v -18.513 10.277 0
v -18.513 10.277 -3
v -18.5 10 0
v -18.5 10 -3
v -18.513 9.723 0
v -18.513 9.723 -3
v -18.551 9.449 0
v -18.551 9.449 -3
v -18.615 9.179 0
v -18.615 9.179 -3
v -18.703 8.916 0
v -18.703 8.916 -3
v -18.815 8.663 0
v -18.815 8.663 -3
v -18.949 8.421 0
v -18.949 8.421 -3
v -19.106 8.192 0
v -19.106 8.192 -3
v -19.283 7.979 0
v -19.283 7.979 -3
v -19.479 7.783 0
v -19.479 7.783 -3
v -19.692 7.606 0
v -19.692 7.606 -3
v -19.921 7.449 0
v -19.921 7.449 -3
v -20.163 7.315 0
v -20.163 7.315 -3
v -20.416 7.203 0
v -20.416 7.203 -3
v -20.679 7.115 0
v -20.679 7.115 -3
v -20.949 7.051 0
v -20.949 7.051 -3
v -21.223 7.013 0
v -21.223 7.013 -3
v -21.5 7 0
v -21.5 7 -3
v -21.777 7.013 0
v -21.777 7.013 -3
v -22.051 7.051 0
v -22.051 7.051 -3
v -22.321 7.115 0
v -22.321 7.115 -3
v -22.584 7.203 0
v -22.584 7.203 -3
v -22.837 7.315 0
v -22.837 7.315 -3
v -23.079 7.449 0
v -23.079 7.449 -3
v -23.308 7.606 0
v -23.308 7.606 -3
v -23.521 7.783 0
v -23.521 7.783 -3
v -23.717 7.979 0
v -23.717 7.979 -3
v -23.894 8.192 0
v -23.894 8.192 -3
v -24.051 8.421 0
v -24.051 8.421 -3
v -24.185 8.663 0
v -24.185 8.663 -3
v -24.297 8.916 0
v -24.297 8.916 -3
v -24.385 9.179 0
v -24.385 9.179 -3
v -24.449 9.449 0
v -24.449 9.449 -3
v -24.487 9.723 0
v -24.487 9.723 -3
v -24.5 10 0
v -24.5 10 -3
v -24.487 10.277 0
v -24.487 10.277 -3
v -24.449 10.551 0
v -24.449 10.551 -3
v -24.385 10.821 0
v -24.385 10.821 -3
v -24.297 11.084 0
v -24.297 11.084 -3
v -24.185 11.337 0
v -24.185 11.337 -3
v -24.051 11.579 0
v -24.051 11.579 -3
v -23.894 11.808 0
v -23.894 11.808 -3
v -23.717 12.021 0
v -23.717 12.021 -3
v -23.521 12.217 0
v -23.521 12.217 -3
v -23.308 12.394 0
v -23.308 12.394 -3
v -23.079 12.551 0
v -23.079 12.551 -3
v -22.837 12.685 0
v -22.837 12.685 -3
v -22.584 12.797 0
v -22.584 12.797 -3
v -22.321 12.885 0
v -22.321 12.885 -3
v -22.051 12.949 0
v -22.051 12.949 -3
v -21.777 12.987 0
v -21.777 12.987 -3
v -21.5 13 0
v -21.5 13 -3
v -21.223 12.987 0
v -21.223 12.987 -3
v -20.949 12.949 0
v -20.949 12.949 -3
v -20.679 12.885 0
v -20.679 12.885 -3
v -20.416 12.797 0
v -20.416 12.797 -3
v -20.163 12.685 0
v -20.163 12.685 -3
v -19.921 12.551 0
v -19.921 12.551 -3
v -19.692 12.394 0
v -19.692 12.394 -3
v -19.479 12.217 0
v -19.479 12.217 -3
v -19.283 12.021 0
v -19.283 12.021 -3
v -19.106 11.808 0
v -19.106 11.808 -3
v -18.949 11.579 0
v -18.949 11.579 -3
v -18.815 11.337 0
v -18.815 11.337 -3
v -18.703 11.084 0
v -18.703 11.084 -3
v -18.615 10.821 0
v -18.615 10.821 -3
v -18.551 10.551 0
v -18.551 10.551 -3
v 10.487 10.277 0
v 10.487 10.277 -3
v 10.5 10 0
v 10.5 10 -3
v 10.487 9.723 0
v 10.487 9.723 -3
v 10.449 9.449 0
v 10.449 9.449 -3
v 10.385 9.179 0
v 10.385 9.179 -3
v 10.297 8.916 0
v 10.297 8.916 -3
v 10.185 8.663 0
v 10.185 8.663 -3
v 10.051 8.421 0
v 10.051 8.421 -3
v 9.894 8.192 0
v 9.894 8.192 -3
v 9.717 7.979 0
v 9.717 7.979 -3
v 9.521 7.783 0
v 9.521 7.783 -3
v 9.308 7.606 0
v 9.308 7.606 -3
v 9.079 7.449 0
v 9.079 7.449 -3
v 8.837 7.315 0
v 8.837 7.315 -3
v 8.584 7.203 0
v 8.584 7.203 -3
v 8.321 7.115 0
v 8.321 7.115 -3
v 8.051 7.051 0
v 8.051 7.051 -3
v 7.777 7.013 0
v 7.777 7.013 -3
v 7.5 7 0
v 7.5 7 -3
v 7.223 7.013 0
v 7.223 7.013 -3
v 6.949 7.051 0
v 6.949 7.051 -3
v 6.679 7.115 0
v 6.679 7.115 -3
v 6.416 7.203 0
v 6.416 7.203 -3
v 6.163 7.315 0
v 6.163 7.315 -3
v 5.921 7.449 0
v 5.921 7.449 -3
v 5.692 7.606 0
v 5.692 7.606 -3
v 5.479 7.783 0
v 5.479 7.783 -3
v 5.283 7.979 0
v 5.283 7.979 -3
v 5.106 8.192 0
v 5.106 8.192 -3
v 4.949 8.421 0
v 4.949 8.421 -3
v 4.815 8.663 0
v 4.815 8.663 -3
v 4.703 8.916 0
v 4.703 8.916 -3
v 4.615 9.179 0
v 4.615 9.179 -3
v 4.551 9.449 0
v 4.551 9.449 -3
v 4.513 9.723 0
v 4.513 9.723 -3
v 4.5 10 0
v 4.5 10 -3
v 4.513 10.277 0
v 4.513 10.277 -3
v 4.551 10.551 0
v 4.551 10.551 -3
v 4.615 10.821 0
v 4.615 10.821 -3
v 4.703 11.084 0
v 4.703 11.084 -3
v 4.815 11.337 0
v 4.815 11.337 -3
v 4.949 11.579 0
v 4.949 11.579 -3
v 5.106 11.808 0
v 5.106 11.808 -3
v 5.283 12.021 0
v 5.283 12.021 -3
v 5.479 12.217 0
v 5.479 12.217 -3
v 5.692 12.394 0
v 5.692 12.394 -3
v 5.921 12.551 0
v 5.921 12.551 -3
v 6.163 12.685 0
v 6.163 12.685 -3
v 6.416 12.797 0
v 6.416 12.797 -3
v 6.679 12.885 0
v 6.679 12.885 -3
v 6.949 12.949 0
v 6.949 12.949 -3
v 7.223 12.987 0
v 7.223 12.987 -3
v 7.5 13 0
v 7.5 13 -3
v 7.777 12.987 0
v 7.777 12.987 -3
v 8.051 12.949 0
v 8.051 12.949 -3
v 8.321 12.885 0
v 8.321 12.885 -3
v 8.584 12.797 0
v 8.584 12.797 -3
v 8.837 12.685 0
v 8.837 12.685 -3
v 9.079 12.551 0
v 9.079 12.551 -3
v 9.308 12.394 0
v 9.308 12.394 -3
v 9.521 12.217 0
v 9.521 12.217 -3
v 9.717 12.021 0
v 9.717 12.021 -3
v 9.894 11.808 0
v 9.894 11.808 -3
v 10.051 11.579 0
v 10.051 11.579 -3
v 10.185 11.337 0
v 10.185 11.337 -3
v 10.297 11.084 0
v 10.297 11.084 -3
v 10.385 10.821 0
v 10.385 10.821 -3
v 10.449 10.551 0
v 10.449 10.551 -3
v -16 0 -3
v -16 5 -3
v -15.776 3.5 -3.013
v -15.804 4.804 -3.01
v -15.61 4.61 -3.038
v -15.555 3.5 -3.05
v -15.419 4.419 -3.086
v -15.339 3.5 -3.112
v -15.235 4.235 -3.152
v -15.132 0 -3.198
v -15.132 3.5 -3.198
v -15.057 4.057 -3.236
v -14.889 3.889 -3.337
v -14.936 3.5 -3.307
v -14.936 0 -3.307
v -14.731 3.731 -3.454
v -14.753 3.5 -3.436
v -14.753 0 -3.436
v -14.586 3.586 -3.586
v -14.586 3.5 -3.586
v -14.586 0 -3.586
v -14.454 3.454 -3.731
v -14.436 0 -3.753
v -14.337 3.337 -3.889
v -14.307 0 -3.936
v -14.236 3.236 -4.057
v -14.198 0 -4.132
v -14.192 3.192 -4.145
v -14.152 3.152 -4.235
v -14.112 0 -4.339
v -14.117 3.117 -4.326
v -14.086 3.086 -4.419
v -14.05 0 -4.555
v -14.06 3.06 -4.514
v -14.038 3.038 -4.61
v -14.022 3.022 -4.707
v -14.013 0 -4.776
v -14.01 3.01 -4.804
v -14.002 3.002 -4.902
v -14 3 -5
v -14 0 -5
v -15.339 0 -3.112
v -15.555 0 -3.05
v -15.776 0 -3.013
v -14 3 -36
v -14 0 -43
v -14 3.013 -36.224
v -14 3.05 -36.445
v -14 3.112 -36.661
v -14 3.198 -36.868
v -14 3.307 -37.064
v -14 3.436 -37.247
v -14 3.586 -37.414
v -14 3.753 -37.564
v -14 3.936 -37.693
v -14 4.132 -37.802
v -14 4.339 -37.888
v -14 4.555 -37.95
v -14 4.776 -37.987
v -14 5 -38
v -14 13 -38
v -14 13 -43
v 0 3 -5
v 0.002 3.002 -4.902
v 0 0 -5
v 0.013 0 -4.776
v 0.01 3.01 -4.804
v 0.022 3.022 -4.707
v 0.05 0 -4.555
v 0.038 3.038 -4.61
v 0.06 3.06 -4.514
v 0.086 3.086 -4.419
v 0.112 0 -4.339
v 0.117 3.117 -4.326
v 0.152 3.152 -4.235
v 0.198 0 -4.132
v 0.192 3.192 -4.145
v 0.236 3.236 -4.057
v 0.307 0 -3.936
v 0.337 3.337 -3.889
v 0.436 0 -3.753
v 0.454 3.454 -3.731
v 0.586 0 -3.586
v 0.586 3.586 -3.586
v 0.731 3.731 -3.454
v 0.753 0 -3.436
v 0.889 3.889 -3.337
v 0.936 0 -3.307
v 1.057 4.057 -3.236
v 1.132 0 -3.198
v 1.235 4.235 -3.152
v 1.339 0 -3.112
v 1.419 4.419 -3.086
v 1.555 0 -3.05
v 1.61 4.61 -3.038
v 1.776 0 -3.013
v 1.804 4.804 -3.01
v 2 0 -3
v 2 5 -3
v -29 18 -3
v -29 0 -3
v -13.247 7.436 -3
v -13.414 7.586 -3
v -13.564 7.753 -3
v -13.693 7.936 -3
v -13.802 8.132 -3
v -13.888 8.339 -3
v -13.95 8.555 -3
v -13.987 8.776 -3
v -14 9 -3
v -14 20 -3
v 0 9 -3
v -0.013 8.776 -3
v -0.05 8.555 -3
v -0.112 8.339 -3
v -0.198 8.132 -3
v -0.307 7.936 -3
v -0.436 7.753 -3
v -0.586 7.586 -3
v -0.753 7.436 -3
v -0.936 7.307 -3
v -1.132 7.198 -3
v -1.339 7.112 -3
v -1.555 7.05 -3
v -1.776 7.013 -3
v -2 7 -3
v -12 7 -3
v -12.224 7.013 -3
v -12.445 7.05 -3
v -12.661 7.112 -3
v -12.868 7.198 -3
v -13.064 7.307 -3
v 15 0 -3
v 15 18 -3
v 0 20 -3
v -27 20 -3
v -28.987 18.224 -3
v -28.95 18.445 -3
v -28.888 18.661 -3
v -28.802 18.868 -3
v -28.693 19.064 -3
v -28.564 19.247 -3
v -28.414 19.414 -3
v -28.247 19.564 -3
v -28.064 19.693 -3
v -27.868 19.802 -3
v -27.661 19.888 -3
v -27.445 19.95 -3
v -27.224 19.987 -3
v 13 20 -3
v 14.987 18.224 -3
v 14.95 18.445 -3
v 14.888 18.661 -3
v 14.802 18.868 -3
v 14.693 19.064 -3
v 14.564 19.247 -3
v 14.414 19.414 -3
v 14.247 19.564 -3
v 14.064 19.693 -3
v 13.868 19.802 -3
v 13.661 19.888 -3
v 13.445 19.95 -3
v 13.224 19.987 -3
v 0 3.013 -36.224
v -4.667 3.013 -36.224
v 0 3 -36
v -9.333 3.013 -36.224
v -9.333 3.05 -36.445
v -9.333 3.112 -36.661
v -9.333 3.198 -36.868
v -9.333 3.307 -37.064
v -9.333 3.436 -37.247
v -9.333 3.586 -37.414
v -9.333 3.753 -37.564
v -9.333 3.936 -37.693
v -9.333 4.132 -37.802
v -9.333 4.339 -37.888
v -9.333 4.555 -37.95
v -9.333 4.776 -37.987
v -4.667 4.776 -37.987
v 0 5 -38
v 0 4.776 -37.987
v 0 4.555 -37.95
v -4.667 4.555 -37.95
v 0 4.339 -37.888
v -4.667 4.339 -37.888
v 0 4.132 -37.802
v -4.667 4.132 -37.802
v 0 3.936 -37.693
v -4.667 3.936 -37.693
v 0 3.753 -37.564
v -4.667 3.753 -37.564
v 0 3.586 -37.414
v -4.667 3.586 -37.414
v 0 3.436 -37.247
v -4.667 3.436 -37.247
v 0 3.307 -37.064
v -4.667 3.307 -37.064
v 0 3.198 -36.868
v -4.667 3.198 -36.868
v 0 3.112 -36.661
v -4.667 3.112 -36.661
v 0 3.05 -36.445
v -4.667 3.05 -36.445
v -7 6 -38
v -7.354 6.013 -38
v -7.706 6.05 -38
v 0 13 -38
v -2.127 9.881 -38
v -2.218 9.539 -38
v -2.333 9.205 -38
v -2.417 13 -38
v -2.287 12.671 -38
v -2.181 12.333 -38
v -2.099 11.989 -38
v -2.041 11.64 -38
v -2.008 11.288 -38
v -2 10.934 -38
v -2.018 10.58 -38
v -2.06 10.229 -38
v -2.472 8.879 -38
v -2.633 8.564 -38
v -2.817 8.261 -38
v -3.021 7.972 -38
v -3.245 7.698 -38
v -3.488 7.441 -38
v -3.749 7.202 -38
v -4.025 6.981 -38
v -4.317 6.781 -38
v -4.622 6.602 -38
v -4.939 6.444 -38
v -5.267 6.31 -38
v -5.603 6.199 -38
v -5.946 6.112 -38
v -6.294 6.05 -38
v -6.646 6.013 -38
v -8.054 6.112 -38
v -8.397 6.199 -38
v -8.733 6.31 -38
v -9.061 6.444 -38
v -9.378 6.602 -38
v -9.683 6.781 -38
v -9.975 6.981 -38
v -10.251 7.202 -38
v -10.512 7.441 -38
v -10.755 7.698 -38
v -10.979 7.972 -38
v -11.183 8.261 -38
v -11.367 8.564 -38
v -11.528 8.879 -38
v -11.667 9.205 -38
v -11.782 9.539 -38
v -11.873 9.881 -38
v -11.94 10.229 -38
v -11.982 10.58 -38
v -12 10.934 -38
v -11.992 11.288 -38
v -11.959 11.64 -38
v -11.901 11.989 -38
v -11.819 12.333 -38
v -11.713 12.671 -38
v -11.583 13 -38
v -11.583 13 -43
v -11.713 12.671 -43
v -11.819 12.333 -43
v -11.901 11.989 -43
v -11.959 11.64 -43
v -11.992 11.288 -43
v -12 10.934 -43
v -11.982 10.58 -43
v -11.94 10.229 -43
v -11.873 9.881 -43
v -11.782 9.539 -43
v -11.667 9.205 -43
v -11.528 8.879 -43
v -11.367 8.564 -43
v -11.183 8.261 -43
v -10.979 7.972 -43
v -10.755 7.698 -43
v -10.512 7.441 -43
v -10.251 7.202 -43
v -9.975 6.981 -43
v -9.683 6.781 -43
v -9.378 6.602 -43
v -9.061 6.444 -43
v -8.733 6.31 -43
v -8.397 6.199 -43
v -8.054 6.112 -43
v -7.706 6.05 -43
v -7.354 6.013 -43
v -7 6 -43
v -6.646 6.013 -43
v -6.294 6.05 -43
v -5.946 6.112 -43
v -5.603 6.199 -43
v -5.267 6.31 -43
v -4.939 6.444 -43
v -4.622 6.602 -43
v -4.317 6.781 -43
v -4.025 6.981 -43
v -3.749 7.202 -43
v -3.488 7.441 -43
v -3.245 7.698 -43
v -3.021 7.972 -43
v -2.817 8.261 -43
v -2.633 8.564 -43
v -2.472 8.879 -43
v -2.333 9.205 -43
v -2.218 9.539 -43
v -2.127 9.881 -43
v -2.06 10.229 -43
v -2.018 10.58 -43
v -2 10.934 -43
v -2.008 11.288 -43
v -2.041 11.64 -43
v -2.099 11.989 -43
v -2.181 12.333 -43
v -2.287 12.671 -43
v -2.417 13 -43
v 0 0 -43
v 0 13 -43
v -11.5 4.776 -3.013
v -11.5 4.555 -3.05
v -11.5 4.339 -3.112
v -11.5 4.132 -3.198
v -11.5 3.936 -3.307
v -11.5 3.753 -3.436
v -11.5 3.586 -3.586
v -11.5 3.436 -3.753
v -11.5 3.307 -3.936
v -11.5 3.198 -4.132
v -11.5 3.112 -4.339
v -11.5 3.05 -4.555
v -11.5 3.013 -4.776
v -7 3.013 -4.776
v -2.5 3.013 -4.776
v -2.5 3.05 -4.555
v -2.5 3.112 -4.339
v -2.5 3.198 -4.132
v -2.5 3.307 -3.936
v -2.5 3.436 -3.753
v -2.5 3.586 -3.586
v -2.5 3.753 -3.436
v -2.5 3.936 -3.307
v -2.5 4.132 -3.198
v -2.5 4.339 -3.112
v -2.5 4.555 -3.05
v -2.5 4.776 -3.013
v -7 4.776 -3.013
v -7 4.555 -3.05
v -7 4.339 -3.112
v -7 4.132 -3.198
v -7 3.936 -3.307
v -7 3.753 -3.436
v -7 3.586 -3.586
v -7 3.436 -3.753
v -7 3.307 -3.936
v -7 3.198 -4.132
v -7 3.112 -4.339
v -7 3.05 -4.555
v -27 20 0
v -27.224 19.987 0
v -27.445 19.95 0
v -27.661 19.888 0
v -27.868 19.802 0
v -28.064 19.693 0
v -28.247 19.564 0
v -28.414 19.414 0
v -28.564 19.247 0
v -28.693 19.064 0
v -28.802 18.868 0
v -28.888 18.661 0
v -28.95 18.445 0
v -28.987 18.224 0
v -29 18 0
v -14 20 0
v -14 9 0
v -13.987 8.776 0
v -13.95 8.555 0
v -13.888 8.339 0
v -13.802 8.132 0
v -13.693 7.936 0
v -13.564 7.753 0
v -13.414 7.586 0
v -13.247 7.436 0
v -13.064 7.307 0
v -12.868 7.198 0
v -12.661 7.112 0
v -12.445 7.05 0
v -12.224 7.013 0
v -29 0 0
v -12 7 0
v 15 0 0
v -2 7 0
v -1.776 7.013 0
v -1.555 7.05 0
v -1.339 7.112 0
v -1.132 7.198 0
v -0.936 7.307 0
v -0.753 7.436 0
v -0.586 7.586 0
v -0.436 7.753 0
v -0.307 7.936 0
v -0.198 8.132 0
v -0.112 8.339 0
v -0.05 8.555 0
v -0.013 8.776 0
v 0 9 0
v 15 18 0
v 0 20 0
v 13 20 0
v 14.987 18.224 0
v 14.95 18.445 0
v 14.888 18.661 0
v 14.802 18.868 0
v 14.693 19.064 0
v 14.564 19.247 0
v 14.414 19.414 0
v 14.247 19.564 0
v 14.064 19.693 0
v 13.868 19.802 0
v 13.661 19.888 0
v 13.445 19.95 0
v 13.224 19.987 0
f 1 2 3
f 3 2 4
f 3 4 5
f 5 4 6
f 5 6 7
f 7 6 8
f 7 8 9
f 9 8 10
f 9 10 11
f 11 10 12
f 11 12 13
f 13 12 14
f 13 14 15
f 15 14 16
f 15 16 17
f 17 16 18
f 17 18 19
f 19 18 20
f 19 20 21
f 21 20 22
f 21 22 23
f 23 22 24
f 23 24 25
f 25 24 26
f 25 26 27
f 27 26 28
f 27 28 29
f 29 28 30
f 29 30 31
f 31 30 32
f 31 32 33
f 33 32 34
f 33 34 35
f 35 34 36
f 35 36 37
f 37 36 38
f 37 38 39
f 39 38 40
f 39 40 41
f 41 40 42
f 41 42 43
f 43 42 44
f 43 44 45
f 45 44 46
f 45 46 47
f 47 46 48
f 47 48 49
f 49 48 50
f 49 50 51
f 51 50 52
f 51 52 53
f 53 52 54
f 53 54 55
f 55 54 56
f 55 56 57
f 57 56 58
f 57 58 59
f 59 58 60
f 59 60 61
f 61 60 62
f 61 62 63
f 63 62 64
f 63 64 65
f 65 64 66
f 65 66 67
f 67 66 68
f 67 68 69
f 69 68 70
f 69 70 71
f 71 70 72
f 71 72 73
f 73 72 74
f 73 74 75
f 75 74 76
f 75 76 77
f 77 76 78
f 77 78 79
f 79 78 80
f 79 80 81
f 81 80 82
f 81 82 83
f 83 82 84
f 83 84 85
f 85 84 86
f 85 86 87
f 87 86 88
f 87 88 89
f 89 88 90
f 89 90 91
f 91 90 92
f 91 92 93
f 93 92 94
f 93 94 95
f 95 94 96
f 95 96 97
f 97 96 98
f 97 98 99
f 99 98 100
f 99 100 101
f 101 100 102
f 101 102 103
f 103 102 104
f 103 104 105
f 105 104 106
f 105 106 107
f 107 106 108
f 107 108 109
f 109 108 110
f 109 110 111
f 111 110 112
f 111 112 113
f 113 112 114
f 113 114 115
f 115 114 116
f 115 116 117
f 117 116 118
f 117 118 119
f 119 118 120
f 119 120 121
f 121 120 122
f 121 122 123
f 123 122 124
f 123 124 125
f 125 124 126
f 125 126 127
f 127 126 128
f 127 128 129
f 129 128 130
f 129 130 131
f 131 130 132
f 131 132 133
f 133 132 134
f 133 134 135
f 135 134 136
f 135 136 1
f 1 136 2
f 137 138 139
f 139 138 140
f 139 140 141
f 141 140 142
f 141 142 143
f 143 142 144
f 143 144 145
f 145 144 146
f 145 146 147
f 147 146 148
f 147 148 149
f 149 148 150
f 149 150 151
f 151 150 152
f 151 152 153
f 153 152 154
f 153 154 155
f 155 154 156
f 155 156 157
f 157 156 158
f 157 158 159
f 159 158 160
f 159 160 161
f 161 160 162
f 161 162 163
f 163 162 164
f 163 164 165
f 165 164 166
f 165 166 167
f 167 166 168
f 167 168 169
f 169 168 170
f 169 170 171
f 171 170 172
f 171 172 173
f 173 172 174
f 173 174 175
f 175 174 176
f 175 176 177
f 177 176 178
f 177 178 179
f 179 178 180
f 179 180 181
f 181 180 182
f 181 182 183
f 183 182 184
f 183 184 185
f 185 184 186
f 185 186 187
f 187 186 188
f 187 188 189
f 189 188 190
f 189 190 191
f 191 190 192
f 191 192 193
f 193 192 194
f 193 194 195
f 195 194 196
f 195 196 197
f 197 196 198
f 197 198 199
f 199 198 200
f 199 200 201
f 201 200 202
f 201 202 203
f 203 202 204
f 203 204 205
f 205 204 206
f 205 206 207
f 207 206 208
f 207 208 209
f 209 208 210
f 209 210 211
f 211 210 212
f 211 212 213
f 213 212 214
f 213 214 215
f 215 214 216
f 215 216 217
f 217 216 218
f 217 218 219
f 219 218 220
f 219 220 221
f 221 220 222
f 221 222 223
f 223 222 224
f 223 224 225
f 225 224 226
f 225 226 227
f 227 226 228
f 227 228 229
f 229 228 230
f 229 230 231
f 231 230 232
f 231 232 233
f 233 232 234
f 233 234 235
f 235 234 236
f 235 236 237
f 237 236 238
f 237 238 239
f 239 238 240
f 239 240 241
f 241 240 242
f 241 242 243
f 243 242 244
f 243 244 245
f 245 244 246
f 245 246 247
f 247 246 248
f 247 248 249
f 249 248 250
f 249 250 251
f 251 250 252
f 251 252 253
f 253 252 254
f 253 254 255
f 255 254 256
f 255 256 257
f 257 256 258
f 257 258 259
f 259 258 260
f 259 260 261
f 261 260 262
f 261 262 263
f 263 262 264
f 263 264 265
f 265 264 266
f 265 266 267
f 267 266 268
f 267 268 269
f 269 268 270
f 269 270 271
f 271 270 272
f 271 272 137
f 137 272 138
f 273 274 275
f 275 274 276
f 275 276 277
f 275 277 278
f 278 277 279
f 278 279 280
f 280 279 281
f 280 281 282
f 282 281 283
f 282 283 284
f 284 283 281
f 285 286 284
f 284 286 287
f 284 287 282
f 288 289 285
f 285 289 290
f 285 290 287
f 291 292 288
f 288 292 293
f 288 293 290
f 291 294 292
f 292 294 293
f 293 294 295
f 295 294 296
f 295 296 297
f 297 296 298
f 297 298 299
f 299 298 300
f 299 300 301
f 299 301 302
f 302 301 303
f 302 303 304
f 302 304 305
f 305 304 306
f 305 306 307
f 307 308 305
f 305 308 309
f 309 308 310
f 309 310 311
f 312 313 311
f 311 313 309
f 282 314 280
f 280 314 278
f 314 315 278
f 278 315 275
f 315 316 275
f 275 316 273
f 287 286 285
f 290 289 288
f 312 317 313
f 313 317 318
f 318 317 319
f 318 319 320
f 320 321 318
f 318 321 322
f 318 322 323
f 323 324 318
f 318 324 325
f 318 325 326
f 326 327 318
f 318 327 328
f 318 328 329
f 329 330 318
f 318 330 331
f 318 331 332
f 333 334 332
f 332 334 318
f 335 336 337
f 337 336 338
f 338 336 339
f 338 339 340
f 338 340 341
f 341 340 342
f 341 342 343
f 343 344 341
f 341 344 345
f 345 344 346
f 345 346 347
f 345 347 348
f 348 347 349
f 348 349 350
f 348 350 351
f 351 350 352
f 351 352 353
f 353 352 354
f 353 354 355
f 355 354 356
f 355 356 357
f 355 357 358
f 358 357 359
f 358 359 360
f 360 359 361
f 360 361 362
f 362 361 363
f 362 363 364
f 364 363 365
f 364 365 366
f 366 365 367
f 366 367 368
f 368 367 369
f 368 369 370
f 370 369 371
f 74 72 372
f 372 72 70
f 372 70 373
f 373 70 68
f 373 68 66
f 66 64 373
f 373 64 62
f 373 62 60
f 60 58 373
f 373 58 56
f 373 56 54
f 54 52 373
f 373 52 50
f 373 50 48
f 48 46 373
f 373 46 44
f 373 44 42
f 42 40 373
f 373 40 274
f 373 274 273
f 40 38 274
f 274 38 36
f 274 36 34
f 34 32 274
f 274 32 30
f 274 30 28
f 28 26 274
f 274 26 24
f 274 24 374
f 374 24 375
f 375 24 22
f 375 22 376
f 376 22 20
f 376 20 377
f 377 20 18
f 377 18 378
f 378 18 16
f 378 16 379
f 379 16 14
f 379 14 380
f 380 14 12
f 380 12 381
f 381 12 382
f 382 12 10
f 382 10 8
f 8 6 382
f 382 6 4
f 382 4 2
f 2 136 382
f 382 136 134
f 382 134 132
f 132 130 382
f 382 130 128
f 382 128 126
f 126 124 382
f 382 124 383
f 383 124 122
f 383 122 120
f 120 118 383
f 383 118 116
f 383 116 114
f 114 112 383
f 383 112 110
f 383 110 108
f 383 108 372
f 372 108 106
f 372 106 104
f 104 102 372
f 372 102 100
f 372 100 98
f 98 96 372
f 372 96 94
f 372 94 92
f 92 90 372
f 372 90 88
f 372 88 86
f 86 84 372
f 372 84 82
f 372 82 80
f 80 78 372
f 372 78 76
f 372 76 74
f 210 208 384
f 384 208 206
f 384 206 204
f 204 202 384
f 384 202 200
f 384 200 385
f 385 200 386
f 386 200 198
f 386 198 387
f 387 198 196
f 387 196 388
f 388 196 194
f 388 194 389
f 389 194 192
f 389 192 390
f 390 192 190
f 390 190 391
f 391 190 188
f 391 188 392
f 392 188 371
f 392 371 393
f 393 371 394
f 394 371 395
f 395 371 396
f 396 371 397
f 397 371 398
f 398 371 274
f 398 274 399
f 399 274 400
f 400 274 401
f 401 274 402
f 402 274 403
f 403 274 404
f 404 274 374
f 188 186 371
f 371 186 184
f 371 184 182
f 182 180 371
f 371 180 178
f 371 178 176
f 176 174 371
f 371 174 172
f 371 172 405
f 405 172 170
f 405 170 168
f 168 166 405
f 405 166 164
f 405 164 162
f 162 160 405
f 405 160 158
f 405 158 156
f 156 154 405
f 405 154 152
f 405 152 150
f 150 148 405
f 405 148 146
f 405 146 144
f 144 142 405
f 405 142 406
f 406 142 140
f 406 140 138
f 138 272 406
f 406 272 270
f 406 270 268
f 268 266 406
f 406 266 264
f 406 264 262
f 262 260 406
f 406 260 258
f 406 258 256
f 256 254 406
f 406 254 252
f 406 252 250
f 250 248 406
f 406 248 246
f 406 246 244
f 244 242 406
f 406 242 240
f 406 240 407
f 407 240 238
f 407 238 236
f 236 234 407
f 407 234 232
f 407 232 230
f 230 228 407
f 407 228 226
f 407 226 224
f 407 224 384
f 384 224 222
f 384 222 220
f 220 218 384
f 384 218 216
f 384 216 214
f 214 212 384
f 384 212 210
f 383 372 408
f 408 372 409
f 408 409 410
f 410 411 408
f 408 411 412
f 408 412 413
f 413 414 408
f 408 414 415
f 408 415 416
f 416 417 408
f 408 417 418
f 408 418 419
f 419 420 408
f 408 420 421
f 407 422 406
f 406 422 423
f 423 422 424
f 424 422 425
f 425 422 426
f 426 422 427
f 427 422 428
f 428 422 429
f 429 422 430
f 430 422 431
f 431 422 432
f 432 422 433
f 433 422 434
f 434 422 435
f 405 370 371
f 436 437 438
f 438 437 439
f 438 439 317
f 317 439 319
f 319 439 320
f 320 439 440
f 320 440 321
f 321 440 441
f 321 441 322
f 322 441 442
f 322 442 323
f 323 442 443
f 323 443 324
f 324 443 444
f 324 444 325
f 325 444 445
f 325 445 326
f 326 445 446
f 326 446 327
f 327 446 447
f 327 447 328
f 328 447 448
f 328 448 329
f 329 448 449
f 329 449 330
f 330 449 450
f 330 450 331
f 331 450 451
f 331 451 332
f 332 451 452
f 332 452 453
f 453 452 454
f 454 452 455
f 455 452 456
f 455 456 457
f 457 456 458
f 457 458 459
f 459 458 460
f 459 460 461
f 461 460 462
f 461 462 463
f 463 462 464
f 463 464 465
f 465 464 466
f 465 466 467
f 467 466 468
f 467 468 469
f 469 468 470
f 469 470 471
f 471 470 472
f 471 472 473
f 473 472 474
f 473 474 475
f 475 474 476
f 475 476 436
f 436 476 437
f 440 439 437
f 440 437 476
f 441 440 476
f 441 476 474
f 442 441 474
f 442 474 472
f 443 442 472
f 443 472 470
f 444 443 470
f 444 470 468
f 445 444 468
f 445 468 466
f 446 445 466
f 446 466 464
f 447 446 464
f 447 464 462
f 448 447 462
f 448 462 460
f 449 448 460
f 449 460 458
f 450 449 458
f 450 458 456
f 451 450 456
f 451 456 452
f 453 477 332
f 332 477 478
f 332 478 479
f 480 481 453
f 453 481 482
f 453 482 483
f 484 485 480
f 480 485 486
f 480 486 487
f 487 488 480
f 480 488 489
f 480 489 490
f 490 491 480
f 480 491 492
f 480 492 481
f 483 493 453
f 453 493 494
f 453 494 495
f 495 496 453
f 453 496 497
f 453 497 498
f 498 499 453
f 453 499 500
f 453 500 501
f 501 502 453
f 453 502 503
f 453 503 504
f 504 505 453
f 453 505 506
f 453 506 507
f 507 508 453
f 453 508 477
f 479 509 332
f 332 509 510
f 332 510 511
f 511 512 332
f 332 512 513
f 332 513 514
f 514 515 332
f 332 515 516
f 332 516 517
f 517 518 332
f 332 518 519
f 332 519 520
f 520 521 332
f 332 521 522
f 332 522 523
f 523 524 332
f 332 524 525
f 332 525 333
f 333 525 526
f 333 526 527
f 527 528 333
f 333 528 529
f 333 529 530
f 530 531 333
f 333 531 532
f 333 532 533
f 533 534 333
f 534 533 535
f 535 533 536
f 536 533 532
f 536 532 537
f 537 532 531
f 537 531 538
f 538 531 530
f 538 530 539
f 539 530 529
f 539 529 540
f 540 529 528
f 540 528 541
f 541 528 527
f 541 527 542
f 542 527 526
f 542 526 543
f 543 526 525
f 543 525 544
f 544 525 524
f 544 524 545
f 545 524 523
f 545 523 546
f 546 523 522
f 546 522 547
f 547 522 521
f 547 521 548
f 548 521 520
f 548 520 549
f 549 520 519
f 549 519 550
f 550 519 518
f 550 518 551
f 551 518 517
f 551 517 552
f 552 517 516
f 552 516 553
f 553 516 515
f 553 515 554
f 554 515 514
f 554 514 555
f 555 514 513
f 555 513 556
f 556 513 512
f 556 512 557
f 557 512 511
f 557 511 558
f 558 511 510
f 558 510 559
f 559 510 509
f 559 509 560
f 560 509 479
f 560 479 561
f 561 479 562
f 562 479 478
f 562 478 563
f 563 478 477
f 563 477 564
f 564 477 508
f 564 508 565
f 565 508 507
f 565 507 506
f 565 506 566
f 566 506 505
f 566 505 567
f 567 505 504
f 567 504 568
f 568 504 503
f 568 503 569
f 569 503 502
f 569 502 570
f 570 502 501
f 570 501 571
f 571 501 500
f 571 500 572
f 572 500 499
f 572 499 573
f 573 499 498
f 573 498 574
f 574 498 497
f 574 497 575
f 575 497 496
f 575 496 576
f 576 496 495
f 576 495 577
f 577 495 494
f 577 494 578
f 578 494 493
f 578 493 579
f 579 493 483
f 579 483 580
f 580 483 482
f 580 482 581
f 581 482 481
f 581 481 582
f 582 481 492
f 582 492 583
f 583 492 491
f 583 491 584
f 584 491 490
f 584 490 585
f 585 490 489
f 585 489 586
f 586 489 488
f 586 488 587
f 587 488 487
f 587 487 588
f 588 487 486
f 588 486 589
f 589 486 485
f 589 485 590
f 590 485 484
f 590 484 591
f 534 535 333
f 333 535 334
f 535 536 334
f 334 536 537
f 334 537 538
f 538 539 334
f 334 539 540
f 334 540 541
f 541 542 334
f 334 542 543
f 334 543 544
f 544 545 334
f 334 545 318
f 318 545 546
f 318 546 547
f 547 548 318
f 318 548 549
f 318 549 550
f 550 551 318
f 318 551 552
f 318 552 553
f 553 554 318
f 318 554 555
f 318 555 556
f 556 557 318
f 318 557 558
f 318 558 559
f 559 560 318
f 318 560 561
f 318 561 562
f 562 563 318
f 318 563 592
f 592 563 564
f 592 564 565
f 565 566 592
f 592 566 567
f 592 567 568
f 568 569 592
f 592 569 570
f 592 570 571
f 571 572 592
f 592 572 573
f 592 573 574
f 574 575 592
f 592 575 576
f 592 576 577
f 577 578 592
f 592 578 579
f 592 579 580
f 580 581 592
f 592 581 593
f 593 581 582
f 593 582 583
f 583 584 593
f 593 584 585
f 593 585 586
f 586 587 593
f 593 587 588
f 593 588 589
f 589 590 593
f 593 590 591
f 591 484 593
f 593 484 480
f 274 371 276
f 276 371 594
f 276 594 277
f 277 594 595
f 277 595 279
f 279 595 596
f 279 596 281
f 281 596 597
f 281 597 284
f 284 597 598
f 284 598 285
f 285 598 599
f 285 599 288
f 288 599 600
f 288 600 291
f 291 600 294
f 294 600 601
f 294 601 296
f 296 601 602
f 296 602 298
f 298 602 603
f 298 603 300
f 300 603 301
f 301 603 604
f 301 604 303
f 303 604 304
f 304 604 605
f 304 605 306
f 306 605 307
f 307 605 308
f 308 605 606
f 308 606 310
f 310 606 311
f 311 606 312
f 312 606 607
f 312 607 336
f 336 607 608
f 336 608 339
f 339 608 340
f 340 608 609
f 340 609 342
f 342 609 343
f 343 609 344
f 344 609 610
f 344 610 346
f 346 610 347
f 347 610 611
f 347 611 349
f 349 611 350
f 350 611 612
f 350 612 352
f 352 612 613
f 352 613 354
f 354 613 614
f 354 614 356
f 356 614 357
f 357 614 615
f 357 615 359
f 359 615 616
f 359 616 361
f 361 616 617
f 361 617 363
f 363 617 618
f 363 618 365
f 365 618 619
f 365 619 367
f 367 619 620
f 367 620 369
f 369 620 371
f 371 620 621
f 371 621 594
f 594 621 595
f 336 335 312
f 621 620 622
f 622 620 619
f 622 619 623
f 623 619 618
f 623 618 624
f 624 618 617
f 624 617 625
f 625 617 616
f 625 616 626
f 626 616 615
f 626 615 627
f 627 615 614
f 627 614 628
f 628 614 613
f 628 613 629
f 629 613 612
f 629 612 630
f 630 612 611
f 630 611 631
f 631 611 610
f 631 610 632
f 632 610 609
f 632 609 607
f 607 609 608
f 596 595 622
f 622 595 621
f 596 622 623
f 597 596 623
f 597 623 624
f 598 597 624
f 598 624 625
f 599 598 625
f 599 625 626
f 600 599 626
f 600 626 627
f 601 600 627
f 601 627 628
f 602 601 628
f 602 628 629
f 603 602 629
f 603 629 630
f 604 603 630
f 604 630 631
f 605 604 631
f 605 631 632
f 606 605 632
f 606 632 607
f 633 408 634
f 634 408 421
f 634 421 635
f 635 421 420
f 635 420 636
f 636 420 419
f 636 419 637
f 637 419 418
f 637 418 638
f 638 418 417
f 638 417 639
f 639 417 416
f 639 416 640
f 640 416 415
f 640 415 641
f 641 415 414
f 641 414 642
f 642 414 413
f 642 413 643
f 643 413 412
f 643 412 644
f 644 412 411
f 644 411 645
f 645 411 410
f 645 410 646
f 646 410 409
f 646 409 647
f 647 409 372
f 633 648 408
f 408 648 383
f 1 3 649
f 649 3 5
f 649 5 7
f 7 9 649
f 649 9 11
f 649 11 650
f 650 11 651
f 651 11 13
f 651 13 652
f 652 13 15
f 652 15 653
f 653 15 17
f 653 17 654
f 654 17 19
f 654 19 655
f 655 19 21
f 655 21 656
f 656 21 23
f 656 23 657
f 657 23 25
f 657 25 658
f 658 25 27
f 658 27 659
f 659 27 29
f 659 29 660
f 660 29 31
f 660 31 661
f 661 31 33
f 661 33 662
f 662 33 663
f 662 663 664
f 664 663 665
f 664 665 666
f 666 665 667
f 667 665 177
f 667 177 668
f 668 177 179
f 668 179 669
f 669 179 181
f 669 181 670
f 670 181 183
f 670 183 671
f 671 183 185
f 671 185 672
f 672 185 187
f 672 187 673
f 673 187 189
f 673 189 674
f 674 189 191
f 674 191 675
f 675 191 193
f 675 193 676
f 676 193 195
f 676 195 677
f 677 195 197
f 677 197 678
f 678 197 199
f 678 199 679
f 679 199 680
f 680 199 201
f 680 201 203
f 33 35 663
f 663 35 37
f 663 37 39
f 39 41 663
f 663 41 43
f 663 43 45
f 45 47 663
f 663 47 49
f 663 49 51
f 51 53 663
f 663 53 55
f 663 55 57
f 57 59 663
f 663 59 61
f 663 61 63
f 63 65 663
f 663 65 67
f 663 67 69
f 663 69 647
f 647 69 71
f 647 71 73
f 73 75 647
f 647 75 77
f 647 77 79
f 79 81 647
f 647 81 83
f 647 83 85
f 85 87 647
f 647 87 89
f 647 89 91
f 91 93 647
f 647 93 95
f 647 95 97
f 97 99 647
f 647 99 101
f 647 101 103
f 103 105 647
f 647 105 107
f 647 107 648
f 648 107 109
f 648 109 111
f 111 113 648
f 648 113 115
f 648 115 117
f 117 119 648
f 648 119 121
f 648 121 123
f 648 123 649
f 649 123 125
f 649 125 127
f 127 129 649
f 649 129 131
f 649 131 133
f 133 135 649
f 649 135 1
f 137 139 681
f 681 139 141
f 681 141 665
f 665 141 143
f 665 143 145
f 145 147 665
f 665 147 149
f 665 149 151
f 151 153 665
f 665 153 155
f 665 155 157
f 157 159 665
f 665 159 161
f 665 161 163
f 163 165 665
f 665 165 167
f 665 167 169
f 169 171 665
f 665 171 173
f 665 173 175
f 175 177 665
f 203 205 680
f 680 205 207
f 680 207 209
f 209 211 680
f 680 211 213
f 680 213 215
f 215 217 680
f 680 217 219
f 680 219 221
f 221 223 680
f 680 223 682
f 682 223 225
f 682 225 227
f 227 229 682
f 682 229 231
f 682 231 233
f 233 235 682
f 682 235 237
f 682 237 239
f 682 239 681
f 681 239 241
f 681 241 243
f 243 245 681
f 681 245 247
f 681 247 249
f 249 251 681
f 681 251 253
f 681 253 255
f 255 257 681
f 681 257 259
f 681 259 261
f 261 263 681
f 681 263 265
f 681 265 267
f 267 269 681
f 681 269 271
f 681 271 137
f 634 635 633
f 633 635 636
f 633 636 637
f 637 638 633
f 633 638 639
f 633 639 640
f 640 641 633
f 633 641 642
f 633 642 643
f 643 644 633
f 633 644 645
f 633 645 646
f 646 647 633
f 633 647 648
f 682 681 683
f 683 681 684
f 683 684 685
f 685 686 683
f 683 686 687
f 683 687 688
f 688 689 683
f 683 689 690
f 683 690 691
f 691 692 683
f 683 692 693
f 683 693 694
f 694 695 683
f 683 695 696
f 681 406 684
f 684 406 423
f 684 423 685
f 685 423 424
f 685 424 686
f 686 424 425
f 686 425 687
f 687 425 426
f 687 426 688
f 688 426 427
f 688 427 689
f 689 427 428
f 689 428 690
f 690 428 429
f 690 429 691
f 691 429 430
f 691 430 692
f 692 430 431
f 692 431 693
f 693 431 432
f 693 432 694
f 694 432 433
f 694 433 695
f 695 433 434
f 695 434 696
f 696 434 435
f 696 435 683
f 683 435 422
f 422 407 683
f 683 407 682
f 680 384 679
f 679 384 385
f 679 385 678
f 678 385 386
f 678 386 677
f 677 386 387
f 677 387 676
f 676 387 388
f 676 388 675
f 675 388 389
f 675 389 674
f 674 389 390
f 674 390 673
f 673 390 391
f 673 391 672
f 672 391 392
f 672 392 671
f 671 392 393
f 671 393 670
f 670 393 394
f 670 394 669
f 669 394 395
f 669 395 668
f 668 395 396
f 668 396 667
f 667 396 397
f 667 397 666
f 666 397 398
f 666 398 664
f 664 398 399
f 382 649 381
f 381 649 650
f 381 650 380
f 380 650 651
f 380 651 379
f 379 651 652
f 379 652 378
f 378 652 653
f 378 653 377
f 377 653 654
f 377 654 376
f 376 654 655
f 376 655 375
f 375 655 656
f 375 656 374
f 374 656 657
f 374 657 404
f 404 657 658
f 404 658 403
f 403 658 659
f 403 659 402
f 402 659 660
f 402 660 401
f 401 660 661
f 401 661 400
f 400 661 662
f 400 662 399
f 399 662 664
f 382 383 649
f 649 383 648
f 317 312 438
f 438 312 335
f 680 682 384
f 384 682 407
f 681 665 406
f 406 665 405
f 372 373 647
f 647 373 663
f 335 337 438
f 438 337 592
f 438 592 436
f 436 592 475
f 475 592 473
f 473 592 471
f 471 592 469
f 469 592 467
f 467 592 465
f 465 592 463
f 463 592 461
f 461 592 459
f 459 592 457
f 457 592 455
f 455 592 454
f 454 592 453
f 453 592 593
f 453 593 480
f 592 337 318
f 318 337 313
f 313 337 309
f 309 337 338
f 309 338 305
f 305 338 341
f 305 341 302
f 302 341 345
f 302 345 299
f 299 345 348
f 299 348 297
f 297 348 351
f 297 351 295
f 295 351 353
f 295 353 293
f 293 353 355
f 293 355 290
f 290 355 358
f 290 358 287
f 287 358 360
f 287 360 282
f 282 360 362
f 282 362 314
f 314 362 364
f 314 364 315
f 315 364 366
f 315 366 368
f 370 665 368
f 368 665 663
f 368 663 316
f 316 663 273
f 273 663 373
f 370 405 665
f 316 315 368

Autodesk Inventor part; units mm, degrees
ref_plane "YZ Plane" through (0, 0, 0) normal (1, 0, 0) x (0, 1, 0)
ref_plane "XZ Plane" through (0, 0, 0) normal (0, 1, 0) x (-1, 0, 0)
ref_plane "XY Plane" through (0, 0, 0) normal (0, 0, 1) x (1, 0, 0)
sketch "Эскиз1" plane through (0, 0, 0) normal (0, 1, 0) x (-1, 0, 0)
  line L0 (0, 0) -> (14, 0)
  line L1 (14, 0) -> (14, -43)
  line L2 (14, -43) -> (0, -43)
  line L3 (0, -43) -> (0, 0)
  dimension "d1" = 43
  dimension "d2" = 14
extrude "Выдавливание1" add sketch "Эскиз1" along normal blind 3
sketch "Эскиз2" plane through (-14, 0, 0) normal (0, 0, 1) x (1, 0, 0)
  line L0 (0, 0) -> (0, 3) projected
  line L1 (0, 0) -> (-15, 0)
  line L2 (-15, 0) -> (-15, 20)
  line L3 (-15, 20) -> (0, 20)
  line L4 (0, 20) -> (0, 0)
  line L5 (14, 0) -> (0, 0) projected
  line L6 (14, 0) -> (29, 0)
  line L7 (29, 0) -> (29, 20)
  line L8 (29, 20) -> (14, 20)
  line L9 (14, 20) -> (14, 0)
  dimension "d5" = 15
  dimension "d6" = 20
  dimension "d7" = 15
  dimension "d8" = 20
extrude "Выдавливание2" add sketch "Эскиз2" against normal blind 3
sketch "Эскиз3" plane through (0, 3, 0) normal (0, 1, 0) x (1, 0, 0)
  line L0 (-14, 43) -> (-14, 3) projected
  line L1 (0, 0) -> (-14, 0)
  line L2 (-14, 0) -> (-14, 3)
  line L3 (-14, 3) -> (0, 3)
  line L4 (0, 3) -> (0, 0)
extrude "Выдавливание3" add sketch "Эскиз3" along normal blind 4
fillet "Сопряжение1" radius 2 4 edges at (-14, 7, -1.5) (0, 7, -1.5) (15, 20, -1.5) (-29, 20, -1.5)
fillet "Сопряжение2" radius 2 1 edges at (-7, 3, -3)
sketch "Эскиз5" plane through (0, 3, 0) normal (0, 1, 0) x (1, 0, 0)
  line L0 (0, 5) -> (0, 43) projected
  line L1 (0, 43) -> (-14, 43)
  line L2 (-14, 43) -> (-14, 38)
  line L3 (-14, 38) -> (0, 38)
  line L4 (0, 38) -> (0, 43)
  point P0 (0, 0)
  point P1 (0, 38)
  dimension "d21" = 14
  dimension "d22" = 5
extrude "Выдавливание5" add sketch "Эскиз5" along normal blind 10
sketch "Эскиз6" plane through (0, 0, -43) normal (0, 0, -1) x (-1, 0, 0)
  circle A0 centre (7, 11) radius 5
  line L0 (0, 0) -> (14, 0) projected
  line L1 (0, 13) -> (14, 13) projected
  line L2 (0, 0) -> (0, 13) projected
  point P0 (11.5826, 13)
  point P1 (2.4174, 13)
  dimension "d25" = 10
  dimension "d27" = 2
  dimension "d28" = 7
extrude "Выдавливание6" cut sketch "Эскиз6" against normal blind 7 contours A0 L1 picked at (7.9729, 10.9801)
fillet "Сопряжение3" radius 2 1 edges at (-7, 3, -38)
fillet "Сопряжение4" radius 2 2 edges at (0, 2.5, -3) (-14, 2.5, -3)
sketch "Эскиз7" plane through (-14, 0, -3) normal (0, 0, -1) x (-1, 0, 0)
  circle A0 centre (-21.5, 10) radius 3
  line L0 (-14, 9) -> (-14, 20) projected
  line L1 (-29, 0) -> (-16, 0) projected
  circle A1 centre (7.5, 10) radius 3
  line L2 (0, 20) -> (0, 9) projected
  line L3 (2, 0) -> (15, 0) projected
  point P0 (-14, 0)
  dimension "d33" = 6
  dimension "d34" = 7.5
  dimension "d35" = 10
  dimension "d36" = 6
  dimension "d37" = 7.5
  dimension "d38" = 10
extrude "Выдавливание7" cut sketch "Эскиз7" against normal blind 10
properties part number "TempSensorHolder"
